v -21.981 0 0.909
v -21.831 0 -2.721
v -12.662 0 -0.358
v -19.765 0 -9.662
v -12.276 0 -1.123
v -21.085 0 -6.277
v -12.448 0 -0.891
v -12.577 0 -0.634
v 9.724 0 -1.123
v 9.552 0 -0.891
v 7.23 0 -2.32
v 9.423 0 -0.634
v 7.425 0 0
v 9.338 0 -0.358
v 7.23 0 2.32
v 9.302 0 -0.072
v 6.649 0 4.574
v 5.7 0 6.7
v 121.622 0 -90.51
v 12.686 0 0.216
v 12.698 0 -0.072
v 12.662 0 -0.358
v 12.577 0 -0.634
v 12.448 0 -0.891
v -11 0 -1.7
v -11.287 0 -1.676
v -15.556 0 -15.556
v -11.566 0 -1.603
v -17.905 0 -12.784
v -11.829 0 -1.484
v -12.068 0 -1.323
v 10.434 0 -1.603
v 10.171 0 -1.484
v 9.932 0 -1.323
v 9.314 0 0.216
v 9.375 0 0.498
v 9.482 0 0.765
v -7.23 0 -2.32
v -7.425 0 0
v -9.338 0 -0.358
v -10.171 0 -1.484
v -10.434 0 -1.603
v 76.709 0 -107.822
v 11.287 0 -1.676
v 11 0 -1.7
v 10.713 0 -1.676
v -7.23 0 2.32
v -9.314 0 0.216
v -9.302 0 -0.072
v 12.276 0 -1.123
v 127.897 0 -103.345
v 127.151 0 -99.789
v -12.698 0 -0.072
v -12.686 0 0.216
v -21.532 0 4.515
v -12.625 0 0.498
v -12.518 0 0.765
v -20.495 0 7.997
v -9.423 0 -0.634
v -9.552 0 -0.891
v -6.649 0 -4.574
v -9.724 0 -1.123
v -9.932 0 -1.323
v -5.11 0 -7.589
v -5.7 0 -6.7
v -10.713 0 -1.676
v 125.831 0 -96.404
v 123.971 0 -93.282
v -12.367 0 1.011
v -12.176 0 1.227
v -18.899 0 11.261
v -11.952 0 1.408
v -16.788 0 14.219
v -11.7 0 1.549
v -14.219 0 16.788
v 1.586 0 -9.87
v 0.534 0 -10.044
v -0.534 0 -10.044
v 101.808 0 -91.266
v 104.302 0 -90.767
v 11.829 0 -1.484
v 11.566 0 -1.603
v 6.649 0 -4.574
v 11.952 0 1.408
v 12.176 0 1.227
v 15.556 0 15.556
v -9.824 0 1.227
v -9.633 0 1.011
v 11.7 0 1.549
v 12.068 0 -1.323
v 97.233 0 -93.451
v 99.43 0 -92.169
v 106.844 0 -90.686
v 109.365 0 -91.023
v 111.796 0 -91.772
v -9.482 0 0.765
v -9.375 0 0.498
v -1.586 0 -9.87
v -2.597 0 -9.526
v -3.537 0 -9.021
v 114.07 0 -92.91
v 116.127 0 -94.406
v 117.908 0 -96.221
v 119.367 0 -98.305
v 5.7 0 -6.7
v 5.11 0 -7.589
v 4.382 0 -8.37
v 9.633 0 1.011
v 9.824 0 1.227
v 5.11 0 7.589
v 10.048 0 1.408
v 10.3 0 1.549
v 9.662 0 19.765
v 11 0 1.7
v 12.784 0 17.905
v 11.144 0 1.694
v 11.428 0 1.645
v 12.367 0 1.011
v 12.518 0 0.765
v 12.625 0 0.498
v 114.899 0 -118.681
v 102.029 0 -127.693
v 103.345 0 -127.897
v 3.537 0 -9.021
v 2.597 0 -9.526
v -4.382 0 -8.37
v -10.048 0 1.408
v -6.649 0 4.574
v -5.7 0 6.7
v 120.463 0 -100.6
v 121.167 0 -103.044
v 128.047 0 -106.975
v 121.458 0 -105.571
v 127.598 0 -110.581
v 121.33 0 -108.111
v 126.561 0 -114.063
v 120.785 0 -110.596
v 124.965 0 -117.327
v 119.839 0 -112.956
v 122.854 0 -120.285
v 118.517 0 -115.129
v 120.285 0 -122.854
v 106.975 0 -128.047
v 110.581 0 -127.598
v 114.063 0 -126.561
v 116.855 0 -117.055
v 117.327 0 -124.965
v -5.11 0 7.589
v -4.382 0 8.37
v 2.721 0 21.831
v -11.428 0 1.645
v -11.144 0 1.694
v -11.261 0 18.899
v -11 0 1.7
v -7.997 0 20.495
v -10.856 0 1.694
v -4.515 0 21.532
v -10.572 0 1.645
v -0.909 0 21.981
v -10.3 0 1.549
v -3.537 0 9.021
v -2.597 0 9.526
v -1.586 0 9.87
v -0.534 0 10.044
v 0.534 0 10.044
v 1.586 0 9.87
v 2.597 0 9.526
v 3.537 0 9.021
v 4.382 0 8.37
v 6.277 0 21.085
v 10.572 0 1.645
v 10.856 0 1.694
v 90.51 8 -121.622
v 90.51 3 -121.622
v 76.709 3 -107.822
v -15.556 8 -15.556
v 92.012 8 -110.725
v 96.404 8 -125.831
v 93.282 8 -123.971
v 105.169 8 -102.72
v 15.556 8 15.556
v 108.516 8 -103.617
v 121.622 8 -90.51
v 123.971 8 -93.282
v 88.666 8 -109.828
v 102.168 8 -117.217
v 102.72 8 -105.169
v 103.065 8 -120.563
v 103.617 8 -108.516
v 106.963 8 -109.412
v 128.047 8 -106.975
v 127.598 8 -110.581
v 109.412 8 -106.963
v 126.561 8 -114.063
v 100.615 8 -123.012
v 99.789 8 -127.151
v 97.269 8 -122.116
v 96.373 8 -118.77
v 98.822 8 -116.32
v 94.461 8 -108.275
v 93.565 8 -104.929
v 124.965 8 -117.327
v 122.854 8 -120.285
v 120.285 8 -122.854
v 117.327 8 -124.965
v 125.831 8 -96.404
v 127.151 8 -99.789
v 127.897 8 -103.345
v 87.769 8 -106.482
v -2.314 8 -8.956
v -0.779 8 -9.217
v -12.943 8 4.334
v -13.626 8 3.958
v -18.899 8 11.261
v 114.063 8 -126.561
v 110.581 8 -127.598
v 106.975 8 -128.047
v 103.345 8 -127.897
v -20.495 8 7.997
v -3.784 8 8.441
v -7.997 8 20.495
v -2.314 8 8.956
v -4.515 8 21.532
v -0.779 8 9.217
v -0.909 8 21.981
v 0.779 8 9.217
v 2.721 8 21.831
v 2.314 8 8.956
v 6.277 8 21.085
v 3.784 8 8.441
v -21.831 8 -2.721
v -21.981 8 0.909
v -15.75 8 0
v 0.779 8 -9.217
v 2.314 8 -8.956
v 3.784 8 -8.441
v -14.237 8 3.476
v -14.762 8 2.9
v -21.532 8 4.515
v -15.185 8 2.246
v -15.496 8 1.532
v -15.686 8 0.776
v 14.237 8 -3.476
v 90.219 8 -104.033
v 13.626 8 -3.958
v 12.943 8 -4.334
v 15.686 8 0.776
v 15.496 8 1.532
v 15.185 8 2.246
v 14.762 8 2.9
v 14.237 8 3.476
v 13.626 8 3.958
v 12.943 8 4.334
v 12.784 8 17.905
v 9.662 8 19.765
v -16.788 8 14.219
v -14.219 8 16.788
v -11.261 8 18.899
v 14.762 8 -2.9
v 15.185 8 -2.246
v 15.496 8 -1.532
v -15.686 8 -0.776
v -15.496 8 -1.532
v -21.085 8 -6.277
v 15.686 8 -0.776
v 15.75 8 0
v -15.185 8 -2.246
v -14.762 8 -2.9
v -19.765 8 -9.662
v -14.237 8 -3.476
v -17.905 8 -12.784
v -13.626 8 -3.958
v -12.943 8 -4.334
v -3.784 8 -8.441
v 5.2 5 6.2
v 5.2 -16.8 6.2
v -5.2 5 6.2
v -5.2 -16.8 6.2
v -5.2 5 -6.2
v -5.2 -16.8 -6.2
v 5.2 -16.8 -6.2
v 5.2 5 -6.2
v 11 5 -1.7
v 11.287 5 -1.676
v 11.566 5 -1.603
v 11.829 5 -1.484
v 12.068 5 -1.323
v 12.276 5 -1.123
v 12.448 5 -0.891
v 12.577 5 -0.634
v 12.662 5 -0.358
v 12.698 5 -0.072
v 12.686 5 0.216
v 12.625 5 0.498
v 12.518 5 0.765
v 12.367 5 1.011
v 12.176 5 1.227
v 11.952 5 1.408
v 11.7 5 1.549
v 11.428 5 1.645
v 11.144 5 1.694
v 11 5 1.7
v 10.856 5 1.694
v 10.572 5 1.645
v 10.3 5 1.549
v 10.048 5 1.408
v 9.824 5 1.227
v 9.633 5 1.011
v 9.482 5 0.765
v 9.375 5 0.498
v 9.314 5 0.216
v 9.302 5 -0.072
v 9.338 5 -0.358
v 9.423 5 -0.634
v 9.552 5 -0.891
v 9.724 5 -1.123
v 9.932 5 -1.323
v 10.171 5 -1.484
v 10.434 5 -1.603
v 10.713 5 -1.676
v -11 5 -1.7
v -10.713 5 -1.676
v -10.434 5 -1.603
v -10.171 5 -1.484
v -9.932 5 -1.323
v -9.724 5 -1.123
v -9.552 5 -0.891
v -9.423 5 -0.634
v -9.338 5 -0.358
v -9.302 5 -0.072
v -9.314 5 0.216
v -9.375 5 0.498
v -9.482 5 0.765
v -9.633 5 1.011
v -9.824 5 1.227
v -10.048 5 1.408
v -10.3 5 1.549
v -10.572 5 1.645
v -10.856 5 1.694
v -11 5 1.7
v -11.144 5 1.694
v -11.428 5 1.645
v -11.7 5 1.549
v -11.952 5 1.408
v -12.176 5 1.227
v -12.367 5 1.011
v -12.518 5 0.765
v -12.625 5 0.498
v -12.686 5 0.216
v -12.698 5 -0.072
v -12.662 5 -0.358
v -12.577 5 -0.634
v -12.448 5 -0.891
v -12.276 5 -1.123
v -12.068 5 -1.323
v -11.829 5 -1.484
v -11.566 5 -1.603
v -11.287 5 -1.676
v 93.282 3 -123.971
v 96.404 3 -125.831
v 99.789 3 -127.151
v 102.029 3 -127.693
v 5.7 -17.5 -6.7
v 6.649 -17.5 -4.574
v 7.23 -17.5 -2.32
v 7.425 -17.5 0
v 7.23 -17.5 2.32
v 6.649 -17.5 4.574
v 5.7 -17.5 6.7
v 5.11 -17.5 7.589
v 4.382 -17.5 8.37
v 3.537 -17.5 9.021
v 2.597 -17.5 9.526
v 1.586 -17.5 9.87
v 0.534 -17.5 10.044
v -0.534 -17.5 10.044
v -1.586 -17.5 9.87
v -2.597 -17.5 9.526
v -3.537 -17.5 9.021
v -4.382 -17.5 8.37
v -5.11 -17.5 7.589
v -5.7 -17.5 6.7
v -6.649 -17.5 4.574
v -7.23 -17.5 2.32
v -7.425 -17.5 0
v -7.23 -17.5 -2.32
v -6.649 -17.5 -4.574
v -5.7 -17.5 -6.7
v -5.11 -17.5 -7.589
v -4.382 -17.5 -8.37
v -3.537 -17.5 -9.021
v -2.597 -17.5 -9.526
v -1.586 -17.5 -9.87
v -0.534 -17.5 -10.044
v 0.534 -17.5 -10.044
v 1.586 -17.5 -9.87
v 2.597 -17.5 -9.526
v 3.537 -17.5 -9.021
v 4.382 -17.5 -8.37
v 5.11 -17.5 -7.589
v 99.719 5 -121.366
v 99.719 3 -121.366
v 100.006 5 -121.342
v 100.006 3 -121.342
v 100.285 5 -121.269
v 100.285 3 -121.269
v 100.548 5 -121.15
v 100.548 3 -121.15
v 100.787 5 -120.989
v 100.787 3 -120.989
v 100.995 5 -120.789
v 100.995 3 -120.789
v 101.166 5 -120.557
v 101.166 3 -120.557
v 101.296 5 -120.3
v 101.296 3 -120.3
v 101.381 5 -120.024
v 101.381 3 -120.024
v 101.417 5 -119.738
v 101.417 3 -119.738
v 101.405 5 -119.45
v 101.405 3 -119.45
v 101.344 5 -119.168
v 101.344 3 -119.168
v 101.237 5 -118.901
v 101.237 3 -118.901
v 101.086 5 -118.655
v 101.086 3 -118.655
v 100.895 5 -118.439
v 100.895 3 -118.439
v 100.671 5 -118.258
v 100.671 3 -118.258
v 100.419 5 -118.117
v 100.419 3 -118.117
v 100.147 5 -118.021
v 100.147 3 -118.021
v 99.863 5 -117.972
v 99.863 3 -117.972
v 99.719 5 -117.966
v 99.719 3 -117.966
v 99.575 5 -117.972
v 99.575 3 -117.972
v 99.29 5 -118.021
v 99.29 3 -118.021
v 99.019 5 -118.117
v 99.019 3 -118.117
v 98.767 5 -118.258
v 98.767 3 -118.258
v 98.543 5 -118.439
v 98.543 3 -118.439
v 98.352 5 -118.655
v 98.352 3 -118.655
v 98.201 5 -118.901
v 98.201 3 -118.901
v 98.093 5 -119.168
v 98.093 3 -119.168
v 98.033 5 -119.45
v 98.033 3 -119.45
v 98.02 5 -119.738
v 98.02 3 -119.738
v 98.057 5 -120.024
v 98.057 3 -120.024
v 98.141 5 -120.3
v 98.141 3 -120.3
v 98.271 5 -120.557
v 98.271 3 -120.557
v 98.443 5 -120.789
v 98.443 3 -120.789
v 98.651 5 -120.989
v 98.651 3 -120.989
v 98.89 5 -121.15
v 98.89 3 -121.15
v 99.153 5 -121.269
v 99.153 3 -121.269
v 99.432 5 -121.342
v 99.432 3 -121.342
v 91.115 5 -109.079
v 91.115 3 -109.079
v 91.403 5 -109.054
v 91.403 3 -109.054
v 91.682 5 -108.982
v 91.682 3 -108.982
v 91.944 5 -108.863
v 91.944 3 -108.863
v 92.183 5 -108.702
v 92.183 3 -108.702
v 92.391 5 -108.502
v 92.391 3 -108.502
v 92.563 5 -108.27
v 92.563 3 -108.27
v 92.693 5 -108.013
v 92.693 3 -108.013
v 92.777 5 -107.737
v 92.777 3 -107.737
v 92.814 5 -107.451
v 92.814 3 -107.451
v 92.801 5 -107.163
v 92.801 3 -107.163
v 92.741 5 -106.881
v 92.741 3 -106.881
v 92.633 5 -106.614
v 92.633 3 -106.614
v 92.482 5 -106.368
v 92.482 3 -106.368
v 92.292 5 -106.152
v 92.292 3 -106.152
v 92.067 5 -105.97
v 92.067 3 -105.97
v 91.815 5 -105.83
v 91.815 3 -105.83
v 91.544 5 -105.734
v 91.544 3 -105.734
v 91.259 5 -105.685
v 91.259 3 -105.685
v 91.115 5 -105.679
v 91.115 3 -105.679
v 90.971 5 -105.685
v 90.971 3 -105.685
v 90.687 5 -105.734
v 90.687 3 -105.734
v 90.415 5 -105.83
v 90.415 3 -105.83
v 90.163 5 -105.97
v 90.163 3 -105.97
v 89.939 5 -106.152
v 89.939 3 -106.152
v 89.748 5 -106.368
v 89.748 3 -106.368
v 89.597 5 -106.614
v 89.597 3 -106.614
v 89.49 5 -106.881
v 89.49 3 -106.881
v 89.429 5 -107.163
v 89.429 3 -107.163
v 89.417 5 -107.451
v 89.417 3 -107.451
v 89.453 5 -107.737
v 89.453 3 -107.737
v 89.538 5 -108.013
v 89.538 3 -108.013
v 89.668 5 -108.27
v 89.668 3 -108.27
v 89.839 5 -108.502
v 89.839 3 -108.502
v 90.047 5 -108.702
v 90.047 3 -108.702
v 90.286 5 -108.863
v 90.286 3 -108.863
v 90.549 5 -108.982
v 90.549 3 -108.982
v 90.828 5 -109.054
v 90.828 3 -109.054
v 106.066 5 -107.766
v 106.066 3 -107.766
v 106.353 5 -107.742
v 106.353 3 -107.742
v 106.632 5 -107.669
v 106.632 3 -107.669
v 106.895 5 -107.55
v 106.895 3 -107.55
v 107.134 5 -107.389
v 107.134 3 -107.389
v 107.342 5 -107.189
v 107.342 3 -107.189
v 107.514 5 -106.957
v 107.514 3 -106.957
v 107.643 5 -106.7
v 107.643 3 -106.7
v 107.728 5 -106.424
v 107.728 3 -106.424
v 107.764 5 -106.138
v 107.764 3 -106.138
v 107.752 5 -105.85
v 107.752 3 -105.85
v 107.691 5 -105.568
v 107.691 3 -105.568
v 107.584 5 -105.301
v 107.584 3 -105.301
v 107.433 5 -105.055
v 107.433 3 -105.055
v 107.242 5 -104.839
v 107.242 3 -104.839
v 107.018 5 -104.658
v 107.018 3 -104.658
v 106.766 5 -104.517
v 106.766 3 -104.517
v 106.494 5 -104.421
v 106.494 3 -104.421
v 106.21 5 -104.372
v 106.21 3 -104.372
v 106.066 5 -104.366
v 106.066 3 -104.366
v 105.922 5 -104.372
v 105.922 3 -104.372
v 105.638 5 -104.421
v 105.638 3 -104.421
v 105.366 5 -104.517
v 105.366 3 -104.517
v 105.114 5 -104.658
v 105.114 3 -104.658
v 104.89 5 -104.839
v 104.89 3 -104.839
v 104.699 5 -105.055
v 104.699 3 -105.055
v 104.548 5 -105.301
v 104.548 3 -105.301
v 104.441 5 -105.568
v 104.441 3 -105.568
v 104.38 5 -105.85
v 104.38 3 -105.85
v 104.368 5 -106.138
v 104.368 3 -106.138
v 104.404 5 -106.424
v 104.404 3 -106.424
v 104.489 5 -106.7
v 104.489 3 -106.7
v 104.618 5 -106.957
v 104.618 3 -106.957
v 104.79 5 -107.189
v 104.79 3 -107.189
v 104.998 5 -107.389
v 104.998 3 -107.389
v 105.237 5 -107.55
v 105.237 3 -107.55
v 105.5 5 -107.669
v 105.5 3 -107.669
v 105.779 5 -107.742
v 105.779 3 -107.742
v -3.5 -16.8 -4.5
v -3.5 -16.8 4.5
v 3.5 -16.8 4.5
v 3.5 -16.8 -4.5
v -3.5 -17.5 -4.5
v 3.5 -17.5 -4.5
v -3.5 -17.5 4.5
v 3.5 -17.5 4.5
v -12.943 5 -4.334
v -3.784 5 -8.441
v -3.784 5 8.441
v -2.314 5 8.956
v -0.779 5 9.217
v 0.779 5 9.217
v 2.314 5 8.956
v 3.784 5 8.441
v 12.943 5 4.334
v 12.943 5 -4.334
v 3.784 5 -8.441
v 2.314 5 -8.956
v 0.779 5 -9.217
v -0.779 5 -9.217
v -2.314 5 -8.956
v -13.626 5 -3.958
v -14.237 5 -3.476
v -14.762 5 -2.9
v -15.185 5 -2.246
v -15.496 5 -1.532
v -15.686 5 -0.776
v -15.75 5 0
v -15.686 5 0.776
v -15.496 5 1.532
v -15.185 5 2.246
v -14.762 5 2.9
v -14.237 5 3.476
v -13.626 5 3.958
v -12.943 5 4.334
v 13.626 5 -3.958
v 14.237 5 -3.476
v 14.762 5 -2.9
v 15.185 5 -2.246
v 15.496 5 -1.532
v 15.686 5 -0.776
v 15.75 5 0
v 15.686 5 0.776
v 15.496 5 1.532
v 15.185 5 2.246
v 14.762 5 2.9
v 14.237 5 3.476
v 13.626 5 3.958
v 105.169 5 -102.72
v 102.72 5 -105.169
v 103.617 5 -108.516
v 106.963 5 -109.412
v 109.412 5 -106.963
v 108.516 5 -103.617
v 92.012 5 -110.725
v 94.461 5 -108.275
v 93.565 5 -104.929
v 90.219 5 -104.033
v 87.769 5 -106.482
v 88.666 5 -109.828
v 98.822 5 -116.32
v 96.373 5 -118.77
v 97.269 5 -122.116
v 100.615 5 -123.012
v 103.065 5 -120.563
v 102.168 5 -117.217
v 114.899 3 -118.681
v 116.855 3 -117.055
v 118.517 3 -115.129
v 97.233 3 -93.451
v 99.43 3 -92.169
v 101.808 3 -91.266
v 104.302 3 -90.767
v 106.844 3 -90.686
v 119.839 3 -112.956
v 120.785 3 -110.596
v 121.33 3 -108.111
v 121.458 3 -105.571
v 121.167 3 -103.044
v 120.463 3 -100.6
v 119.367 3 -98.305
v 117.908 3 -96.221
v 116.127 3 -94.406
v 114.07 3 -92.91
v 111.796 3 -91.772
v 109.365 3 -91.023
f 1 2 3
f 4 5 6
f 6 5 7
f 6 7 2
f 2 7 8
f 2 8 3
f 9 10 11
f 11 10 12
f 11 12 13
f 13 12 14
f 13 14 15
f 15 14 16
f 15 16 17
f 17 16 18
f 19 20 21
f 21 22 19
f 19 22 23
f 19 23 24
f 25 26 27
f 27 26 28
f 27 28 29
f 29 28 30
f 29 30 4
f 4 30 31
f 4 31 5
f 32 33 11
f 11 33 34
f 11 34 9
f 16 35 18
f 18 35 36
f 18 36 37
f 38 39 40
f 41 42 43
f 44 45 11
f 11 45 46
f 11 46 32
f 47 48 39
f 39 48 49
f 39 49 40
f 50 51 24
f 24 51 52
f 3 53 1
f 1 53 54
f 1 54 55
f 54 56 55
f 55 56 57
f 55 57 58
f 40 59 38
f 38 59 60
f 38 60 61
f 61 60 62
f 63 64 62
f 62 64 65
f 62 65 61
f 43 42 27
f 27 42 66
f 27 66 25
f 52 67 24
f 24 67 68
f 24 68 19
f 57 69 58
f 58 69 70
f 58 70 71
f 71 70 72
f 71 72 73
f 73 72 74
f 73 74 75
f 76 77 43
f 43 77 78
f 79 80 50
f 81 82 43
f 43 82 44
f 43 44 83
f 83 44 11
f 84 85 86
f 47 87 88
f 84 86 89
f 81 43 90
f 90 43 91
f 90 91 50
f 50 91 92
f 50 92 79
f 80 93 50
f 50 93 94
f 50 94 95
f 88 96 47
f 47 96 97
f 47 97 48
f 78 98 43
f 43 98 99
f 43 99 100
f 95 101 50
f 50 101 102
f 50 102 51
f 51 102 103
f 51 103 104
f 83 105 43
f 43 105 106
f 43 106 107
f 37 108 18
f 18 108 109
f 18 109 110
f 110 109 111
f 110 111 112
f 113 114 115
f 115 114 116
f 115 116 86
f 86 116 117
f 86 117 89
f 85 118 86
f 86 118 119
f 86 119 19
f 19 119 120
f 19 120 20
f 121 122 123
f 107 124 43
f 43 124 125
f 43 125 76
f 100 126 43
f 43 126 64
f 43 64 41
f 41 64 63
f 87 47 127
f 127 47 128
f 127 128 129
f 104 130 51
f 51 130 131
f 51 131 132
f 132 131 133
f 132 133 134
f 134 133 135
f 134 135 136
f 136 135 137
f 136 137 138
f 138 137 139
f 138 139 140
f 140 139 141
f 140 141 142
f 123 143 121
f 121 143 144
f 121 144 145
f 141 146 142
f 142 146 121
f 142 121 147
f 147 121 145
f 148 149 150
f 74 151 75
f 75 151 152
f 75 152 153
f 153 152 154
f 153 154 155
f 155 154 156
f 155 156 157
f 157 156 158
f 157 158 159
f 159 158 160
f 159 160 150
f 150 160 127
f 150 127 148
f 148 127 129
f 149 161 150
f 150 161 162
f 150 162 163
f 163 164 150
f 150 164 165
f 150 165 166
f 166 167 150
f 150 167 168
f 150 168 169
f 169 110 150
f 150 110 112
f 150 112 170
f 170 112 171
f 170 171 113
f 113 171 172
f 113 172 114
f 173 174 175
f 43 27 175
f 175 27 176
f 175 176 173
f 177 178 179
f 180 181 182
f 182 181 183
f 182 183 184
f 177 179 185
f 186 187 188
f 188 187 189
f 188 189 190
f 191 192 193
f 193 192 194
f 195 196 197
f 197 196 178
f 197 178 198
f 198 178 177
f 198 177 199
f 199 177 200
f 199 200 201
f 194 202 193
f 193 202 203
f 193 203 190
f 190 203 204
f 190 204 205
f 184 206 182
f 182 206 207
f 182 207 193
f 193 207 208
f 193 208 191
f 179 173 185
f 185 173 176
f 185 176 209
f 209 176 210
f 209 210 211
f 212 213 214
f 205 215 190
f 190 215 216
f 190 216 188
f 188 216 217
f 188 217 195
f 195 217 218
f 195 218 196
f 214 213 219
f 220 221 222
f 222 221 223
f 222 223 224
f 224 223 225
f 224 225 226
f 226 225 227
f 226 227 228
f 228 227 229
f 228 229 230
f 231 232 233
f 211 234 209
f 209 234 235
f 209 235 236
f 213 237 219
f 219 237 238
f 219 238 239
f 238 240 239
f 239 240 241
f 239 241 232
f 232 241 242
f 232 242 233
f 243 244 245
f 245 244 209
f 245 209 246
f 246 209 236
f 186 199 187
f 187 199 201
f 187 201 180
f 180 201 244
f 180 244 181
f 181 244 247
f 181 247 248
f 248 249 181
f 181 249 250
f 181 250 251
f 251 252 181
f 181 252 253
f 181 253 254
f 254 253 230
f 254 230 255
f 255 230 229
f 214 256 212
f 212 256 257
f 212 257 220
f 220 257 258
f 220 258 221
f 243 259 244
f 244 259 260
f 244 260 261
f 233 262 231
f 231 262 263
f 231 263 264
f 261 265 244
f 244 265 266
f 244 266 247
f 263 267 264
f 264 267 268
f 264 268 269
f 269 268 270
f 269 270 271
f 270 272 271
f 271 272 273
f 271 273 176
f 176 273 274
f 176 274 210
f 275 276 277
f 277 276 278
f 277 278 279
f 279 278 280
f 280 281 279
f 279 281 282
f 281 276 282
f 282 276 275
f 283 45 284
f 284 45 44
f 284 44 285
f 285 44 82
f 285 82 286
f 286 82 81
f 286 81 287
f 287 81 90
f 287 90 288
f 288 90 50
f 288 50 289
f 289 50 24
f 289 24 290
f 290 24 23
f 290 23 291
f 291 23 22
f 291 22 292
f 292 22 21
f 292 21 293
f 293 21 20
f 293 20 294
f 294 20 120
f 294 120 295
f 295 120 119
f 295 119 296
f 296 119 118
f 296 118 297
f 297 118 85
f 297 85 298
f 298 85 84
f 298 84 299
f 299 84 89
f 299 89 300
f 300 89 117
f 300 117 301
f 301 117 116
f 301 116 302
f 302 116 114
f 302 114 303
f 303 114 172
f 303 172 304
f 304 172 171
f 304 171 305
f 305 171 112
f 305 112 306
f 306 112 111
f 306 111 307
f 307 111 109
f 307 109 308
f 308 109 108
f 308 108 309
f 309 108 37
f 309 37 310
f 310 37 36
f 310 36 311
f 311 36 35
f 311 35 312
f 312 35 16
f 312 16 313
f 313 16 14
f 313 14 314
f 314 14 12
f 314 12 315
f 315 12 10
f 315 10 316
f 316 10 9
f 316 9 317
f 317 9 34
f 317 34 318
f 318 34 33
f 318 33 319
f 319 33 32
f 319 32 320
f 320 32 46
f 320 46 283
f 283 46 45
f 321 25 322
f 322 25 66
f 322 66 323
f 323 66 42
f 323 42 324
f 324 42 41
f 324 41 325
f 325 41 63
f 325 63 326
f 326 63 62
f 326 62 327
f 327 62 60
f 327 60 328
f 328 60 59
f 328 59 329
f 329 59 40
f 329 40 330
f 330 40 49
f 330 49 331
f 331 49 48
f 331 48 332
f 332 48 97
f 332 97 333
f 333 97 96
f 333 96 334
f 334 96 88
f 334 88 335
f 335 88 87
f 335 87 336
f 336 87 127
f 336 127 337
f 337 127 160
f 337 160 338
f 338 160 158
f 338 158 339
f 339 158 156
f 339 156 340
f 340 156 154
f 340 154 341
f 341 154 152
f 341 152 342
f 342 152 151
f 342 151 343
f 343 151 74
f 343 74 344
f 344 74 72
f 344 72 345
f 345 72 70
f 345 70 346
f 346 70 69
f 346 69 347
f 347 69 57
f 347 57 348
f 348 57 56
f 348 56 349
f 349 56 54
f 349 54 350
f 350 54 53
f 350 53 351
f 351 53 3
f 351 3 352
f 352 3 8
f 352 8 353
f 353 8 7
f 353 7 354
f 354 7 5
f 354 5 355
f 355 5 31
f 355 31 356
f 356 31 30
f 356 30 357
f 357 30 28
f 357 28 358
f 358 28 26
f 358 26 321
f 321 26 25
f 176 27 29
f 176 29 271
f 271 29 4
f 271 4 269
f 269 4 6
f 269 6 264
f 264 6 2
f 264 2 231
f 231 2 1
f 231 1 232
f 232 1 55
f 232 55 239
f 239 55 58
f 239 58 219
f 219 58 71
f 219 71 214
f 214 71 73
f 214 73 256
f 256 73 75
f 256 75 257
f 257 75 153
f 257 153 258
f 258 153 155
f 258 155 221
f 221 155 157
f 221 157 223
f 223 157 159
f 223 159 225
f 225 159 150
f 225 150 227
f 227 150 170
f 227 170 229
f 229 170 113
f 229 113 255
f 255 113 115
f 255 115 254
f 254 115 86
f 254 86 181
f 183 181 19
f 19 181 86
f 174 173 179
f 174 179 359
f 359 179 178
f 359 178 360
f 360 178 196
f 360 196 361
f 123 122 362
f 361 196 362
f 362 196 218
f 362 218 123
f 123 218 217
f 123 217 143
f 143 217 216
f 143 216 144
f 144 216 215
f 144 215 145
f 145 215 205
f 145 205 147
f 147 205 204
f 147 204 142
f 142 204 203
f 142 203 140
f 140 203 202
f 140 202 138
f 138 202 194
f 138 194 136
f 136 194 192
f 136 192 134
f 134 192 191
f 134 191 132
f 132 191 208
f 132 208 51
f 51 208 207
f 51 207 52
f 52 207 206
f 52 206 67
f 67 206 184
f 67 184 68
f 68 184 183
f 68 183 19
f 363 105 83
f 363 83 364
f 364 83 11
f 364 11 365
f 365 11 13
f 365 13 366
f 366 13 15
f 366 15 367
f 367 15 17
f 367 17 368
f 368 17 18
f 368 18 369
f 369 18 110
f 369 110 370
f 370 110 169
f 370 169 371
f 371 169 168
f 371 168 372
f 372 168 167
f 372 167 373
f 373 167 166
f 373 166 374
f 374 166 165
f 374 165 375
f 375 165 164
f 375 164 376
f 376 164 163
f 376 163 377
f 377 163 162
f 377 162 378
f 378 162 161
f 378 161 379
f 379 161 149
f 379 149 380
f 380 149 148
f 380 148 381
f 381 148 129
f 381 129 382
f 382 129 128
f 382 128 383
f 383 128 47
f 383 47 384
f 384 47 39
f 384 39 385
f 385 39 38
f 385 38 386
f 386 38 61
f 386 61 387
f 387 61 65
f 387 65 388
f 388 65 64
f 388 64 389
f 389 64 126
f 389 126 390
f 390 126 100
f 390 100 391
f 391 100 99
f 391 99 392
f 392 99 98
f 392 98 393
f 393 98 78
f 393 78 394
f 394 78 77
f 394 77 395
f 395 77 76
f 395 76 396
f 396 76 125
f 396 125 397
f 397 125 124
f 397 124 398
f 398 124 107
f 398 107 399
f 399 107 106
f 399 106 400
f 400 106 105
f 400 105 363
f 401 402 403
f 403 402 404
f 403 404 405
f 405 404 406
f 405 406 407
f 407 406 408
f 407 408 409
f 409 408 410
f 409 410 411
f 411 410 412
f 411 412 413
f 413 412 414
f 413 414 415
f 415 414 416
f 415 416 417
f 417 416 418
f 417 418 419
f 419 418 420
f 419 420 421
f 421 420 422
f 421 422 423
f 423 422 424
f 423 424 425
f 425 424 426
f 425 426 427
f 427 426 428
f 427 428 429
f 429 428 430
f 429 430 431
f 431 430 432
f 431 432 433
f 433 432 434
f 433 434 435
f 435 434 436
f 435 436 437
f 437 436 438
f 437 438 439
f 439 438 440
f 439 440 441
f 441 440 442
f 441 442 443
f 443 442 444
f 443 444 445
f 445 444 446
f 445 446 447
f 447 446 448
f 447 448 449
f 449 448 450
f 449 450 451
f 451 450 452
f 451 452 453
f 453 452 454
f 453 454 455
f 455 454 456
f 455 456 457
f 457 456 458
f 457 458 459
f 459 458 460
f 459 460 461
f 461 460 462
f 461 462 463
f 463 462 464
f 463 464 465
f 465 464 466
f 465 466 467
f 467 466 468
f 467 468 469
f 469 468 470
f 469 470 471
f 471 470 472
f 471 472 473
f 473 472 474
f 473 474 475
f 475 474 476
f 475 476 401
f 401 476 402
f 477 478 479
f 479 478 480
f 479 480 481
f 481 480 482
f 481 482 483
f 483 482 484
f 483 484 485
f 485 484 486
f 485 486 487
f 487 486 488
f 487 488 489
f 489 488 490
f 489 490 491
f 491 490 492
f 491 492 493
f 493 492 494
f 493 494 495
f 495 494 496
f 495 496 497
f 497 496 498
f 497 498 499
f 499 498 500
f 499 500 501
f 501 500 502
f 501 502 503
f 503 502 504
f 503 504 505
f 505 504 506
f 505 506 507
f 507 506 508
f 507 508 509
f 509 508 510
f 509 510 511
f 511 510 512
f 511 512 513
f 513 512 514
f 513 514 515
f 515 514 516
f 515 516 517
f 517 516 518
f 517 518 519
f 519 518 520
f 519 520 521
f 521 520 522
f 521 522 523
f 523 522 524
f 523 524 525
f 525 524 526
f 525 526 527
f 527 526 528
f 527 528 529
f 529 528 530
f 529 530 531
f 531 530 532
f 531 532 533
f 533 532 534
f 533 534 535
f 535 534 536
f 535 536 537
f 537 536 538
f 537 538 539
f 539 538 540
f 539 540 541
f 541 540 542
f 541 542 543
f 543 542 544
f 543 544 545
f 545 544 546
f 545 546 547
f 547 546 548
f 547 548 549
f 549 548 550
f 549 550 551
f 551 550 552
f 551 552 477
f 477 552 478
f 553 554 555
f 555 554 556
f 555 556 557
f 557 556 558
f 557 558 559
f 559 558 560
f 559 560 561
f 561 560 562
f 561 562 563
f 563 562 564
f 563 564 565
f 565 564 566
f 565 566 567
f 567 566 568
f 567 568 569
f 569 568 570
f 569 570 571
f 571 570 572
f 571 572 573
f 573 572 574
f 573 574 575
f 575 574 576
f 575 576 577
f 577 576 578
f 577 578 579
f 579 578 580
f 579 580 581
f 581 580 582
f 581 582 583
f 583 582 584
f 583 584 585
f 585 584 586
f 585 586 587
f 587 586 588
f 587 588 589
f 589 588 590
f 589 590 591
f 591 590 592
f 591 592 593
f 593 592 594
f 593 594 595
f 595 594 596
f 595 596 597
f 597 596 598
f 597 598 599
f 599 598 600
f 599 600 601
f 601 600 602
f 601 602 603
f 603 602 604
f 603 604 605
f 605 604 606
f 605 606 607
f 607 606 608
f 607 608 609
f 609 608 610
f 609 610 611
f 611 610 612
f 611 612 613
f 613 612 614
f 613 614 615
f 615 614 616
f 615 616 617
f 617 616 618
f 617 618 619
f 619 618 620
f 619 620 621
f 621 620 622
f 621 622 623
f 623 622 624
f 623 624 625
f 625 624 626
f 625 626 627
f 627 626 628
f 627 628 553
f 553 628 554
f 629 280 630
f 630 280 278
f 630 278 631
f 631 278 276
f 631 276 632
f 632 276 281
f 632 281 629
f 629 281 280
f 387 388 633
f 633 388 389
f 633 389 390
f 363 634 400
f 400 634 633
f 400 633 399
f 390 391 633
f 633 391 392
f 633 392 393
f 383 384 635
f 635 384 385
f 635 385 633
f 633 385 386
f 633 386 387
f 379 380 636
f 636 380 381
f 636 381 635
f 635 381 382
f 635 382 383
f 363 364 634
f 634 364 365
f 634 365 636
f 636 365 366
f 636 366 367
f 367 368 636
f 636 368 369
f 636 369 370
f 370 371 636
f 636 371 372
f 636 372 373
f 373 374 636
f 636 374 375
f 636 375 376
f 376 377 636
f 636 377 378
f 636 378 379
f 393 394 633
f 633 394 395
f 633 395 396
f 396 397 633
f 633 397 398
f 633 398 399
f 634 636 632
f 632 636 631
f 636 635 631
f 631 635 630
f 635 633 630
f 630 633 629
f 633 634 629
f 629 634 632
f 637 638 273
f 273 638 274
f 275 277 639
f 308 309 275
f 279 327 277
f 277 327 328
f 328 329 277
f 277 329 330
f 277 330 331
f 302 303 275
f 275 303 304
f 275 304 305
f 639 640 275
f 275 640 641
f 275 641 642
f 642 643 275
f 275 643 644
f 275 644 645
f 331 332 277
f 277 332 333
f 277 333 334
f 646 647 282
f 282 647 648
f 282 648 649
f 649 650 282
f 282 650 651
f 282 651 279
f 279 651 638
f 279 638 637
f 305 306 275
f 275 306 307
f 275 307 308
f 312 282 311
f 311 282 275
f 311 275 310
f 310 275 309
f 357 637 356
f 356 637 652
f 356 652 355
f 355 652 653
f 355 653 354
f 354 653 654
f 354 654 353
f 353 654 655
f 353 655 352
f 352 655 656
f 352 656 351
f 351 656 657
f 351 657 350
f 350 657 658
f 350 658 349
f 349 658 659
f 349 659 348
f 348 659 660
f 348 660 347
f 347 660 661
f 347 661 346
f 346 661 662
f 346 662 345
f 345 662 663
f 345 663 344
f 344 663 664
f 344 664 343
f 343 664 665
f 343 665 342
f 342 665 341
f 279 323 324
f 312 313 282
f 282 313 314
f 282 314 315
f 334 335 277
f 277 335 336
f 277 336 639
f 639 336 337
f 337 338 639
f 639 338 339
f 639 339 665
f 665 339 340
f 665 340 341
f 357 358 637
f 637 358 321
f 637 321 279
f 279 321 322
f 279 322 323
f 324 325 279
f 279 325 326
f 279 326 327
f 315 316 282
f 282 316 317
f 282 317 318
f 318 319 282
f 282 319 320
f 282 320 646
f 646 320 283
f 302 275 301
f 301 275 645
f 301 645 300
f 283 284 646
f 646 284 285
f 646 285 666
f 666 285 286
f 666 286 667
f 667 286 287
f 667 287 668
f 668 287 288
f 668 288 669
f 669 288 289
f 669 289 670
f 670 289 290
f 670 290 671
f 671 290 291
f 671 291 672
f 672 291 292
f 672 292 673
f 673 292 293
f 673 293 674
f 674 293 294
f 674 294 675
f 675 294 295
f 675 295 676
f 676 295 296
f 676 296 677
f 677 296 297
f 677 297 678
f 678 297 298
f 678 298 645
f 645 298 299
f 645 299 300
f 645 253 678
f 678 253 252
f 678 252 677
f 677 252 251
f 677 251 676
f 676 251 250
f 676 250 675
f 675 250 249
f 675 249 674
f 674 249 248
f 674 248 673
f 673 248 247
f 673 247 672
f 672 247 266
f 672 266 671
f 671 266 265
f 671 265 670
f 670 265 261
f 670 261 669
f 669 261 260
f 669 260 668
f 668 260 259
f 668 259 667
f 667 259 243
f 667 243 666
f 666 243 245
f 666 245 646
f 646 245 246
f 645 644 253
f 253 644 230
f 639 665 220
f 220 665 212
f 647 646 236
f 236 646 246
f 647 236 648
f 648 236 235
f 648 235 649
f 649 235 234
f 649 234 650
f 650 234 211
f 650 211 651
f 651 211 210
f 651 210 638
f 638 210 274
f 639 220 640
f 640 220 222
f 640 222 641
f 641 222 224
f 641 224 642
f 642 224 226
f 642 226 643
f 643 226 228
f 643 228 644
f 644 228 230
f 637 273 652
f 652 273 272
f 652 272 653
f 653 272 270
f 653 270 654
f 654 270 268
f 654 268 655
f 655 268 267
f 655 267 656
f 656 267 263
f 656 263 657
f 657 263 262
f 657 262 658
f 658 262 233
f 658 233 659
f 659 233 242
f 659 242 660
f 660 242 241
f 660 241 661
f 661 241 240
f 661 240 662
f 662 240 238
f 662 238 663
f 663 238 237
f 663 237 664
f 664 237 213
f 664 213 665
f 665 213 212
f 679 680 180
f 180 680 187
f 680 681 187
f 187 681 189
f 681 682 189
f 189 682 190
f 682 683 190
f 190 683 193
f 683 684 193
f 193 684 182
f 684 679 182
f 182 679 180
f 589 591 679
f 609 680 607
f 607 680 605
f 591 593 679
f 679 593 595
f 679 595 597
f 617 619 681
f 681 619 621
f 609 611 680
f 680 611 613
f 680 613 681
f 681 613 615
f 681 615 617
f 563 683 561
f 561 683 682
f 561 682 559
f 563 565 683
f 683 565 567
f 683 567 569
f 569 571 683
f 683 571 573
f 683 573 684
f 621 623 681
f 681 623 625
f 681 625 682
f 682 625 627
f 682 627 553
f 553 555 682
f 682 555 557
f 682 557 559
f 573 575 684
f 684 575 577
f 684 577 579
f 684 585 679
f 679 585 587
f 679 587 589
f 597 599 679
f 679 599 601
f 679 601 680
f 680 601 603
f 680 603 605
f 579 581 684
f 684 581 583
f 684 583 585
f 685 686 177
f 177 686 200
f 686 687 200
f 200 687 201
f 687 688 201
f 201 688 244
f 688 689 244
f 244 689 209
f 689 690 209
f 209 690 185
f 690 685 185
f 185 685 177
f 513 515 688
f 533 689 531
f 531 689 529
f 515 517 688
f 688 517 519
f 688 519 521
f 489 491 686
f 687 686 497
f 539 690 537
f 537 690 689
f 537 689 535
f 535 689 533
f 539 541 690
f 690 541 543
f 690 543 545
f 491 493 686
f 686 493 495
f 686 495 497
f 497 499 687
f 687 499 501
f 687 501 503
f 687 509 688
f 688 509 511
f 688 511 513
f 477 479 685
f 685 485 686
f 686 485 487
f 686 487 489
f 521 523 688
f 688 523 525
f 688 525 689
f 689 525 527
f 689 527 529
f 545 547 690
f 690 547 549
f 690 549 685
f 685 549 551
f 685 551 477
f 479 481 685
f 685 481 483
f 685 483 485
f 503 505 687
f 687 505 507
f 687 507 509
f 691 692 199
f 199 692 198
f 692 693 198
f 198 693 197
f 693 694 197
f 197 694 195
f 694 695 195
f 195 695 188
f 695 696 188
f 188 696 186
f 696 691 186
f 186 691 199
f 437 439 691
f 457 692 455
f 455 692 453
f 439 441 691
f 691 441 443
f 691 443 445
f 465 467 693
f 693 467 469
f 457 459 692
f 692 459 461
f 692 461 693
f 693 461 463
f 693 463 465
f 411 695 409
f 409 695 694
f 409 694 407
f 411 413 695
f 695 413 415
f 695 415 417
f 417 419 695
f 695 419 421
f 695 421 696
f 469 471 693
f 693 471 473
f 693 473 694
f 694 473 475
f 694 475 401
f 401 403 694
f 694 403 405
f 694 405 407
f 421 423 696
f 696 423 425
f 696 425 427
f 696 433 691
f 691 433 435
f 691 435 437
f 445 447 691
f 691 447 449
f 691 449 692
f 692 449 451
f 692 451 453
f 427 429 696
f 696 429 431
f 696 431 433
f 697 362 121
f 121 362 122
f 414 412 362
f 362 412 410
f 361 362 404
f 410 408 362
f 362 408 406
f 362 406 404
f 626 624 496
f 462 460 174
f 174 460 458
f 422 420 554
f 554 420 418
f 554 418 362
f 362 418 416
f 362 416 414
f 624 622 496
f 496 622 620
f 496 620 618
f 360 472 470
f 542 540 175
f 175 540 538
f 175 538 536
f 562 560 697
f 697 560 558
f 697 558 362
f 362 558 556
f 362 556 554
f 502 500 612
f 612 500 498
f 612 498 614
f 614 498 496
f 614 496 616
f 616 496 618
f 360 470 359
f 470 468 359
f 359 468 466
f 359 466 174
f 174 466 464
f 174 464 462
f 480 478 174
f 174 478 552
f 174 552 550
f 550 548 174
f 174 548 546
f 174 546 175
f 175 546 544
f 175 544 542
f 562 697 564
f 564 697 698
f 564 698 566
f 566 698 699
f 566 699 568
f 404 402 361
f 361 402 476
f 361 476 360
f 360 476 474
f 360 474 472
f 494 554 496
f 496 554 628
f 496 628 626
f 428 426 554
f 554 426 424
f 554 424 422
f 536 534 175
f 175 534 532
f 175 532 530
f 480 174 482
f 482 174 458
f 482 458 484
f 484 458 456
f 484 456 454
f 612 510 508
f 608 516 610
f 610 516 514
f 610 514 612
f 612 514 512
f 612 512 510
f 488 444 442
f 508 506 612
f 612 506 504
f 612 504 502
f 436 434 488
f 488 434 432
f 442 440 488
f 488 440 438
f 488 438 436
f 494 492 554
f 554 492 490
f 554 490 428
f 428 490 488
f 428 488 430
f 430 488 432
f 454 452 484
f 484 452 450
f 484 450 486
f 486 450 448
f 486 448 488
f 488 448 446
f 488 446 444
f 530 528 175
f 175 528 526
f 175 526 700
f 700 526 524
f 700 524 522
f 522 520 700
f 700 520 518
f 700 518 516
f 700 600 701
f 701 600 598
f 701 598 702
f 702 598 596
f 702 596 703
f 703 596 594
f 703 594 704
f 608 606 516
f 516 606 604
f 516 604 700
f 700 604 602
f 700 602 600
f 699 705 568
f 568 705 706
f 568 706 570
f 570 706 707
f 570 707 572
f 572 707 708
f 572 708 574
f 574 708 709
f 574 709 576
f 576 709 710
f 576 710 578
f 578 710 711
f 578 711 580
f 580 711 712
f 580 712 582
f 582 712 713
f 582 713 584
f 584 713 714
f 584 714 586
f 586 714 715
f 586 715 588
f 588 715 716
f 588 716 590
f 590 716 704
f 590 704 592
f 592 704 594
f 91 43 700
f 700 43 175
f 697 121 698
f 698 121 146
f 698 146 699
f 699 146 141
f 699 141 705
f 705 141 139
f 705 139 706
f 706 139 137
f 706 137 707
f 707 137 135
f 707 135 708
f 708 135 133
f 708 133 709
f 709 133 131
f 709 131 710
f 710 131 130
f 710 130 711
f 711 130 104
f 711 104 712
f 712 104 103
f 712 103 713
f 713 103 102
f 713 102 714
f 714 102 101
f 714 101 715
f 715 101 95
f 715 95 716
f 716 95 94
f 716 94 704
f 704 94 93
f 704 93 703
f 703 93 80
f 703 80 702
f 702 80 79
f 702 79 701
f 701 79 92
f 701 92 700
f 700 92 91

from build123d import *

# Parameters (mm, degrees)
BOSS_EXTRUDE1_DEPTH     = 8
BOSS_EXTRUDE2_START     = 8
SKETCH1_4_W             = 10.4
SKETCH1_4_H             = 12.4
BOSS_EXTRUDE2_DEPTH     = 24.8
CUT_EXTRUDE3_DEPTH      = 177.890212798
CUT_EXTRUDE3_DEPTH_BACK = 182.890212798
CUT_EXTRUDE3_START      = 5
SKETCH1_6_W             = 10.4
SKETCH1_6_H             = 12.4
SKETCH1_6_R             = 1.7
BOSS_EXTRUDE3_START     = -16.8
SKETCH1_10_W            = 11.4
SKETCH1_10_H            = 13.4
SKETCH1_10_W_2          = 10.4
SKETCH1_10_H_2          = 12.4
SKETCH1_10_W_3          = 7
SKETCH1_10_H_3          = 9
BOSS_EXTRUDE3_DEPTH     = 0.7
SKETCH2_R               = 1.7
SKETCH2_W               = 10.4
SKETCH2_H               = 12.4
CUT_EXTRUDE7_DEPTH      = 3
CUT_EXTRUDE5_START      = 8
SKETCH1_8_R             = 1.7
CUT_EXTRUDE5_DEPTH      = 3
CUT_EXTRUDE6_DEPTH      = 3


with BuildPart() as part:
    # Sketch1 → Boss-Extrude1 (new body)
    with BuildSketch(Plane(origin=(0, 0, 0), x_dir=(1, 0, 0), z_dir=(0, 1, 0))):
        with BuildLine():
            Line((-15.556349186, 15.556349186), (90.509667992, 121.622366364))
            ThreePointArc((90.509667992, 121.622366364), (121.622366364, 121.622366364), (121.622366364, 90.509667992))
            Line((121.622366364, 90.509667992), (15.556349186, -15.556349186))
            ThreePointArc((15.556349186, -15.556349186), (-15.556349186, -15.556349186), (-15.556349186, 15.556349186))
        make_face()
    extrude(amount=BOSS_EXTRUDE1_DEPTH)

    # Sketch1<4> → Boss-Extrude2 (add)
    with BuildSketch(Plane(origin=(0, 0, 0), x_dir=(1, 0, 0), z_dir=(0, 1, 0)).offset(BOSS_EXTRUDE2_START)):
        with BuildLine():
            ThreePointArc((-5.7, 6.7), (0, 10.065795515), (5.7, 6.7))
            ThreePointArc((5.7, 6.7), (7.425074212, 0), (5.7, -6.7))
            ThreePointArc((5.7, -6.7), (0, -10.065795515), (-5.7, -6.7))
            ThreePointArc((-5.7, -6.7), (-7.425074212, 0), (-5.7, 6.7))
        make_face()
        Rectangle(SKETCH1_4_W, SKETCH1_4_H, mode=Mode.SUBTRACT)
    extrude(amount=-BOSS_EXTRUDE2_DEPTH)

    # Sketch1<6> → Cut-Extrude3 (cut, two sides: drawn at the far end of the back side and taken through both)
    with BuildSketch(Plane(origin=(0, 0, 0), x_dir=(1, 0, 0), z_dir=(0, 1, 0)).offset(CUT_EXTRUDE3_START - CUT_EXTRUDE3_DEPTH_BACK)):
        Rectangle(SKETCH1_6_W, SKETCH1_6_H)
        with Locations(Location((106.066017178, 106.066017178, 0), (0, 0, 270))):
            Circle(SKETCH1_6_R)
        with Locations(Location((99.718863875, 119.666151183, 0), (0, 0, 270))):
            Circle(SKETCH1_6_R)
        with Locations(Location((91.11521733, 107.378870518, 0), (0, 0, 270))):
            Circle(SKETCH1_6_R)
        with Locations(Location((11, 0, 0), (0, 0, 270))):
            Circle(SKETCH1_6_R)
        with Locations(Location((-11, 0, 0), (0, 0, 270))):
            Circle(SKETCH1_6_R)
    extrude(amount=CUT_EXTRUDE3_DEPTH + CUT_EXTRUDE3_DEPTH_BACK, mode=Mode.SUBTRACT)

    # Sketch1<10> → Boss-Extrude3 (add)
    # profile 1 of 6: a face of its own
    with BuildSketch(Plane(origin=(0, 0, 0), x_dir=(1, 0, 0), z_dir=(0, 1, 0)).offset(BOSS_EXTRUDE3_START)):
        Rectangle(SKETCH1_10_W, SKETCH1_10_H)
        Rectangle(SKETCH1_10_W_2, SKETCH1_10_H_2, mode=Mode.SUBTRACT)
    # profile 2 of 6: a face of its own
    with BuildSketch(Plane(origin=(0, 0, 0), x_dir=(1, 0, 0), z_dir=(0, 1, 0)).offset(BOSS_EXTRUDE3_START)):
        Rectangle(SKETCH1_10_W_2, SKETCH1_10_H_2)
        Rectangle(SKETCH1_10_W_3, SKETCH1_10_H_3, mode=Mode.SUBTRACT)
    # profile 3 of 6: a face of its own
    with BuildSketch(Plane(origin=(0, 0, 0), x_dir=(1, 0, 0), z_dir=(0, 1, 0)).offset(BOSS_EXTRUDE3_START)):
        with BuildLine():
            ThreePointArc((-5.7, 6.7), (0, 10.065795515), (5.7, 6.7))
            Line((5.7, 6.7), (-5.7, 6.7))
        make_face()
    # profile 4 of 6: a face of its own
    with BuildSketch(Plane(origin=(0, 0, 0), x_dir=(1, 0, 0), z_dir=(0, 1, 0)).offset(BOSS_EXTRUDE3_START)):
        with BuildLine():
            Line((5.7, 6.7), (5.7, -6.7))
            ThreePointArc((5.7, -6.7), (7.425074212, 0), (5.7, 6.7))
        make_face()
    # profile 5 of 6: a face of its own
    with BuildSketch(Plane(origin=(0, 0, 0), x_dir=(1, 0, 0), z_dir=(0, 1, 0)).offset(BOSS_EXTRUDE3_START)):
        with BuildLine():
            Line((-5.7, -6.7), (5.7, -6.7))
            ThreePointArc((5.7, -6.7), (0, -10.065795515), (-5.7, -6.7))
        make_face()
    # profile 6 of 6: a face of its own
    with BuildSketch(Plane(origin=(0, 0, 0), x_dir=(1, 0, 0), z_dir=(0, 1, 0)).offset(BOSS_EXTRUDE3_START)):
        with BuildLine():
            Line((-5.7, 6.7), (-5.7, -6.7))
            ThreePointArc((-5.7, -6.7), (-7.425074212, 0), (-5.7, 6.7))
        make_face()
    extrude(amount=-BOSS_EXTRUDE3_DEPTH)

    # Sketch2 → Cut-Extrude7 (cut)
    with BuildSketch(Plane(origin=(0, 8, 0), x_dir=(1, 0, 0), z_dir=(0, 1, 0))):
        with BuildLine():
            ThreePointArc((-3.784090909, -8.440566094), (0, -9.25), (3.784090909, -8.440566094))
            Line((3.784090909, -8.440566094), (12.943181818, -4.334344751))
            ThreePointArc((12.943181818, -4.334344751), (15.75, 0), (12.943181818, 4.334344751))
            Line((12.943181818, 4.334344751), (3.784090909, 8.440566094))
            ThreePointArc((3.784090909, 8.440566094), (0, 9.25), (-3.784090909, 8.440566094))
            Line((-3.784090909, 8.440566094), (-12.943181818, 4.334344751))
            ThreePointArc((-12.943181818, 4.334344751), (-15.75, 0), (-12.943181818, -4.334344751))
            Line((-12.943181818, -4.334344751), (-3.784090909, -8.440566094))
        make_face()
        with Locations(Location((-11, 0, 0), (0, 0, 270))):
            Circle(SKETCH2_R, mode=Mode.SUBTRACT)
        Rectangle(SKETCH2_W, SKETCH2_H, mode=Mode.SUBTRACT)
        with Locations(Location((11, 0, 0), (0, 0, 270))):
            Circle(SKETCH2_R, mode=Mode.SUBTRACT)
    extrude(amount=-CUT_EXTRUDE7_DEPTH, mode=Mode.SUBTRACT)

    # Sketch1<8> → Cut-Extrude5 (cut)
    # profile 1 of 3: a face of its own
    with BuildSketch(Plane(origin=(0, 0, 0), x_dir=(1, 0, 0), z_dir=(0, 1, 0)).offset(CUT_EXTRUDE5_START)):
        Polygon((102.168353618, 117.21666144), (103.06492909, 120.562726655), (100.615439347, 123.012216398), (97.269374132, 122.115640925), (96.37279866, 118.769575711), (98.822288403, 116.320085968), align=None)
        with Locations(Location((99.718863875, 119.666151183, 0), (0, 0, 270))):
            Circle(SKETCH1_8_R, mode=Mode.SUBTRACT)
    # profile 2 of 3: a face of its own
    with BuildSketch(Plane(origin=(0, 0, 0), x_dir=(1, 0, 0), z_dir=(0, 1, 0)).offset(CUT_EXTRUDE5_START)):
        Polygon((88.665727587, 109.828360261), (87.769152115, 106.482295046), (90.218641857, 104.032805303), (93.564707072, 104.929380776), (94.461282545, 108.275445991), (92.011792802, 110.724935733), align=None)
        with Locations(Location((91.11521733, 107.378870518, 0), (0, 0, 270))):
            Circle(SKETCH1_8_R, mode=Mode.SUBTRACT)
    # profile 3 of 3: a face of its own
    with BuildSketch(Plane(origin=(0, 0, 0), x_dir=(1, 0, 0), z_dir=(0, 1, 0)).offset(CUT_EXTRUDE5_START)):
        Polygon((108.515506921, 103.616527435), (109.412082393, 106.96259265), (106.96259265, 109.412082393), (103.616527435, 108.515506921), (102.719951963, 105.169441706), (105.169441706, 102.719951963), align=None)
        with Locations(Location((106.066017178, 106.066017178, 0), (0, 0, 270))):
            Circle(SKETCH1_8_R, mode=Mode.SUBTRACT)
    extrude(amount=-CUT_EXTRUDE5_DEPTH, mode=Mode.SUBTRACT)

    # Sketch1<9> → Cut-Extrude6 (cut)
    with BuildSketch(Plane(origin=(0, 0, 0), x_dir=(1, 0, 0), z_dir=(0, 1, 0))):
        with BuildLine():
            Line((97.232940058, 93.451075696), (-9.918409797, 168.479258594))
            ThreePointArc((-9.918409797, 168.479258594), (-13.700274159, 189.927277196), (7.747744443, 193.709141558))
            Line((7.747744443, 193.709141558), (114.899094298, 118.68095866))
            ThreePointArc((114.899094298, 118.68095866), (118.68095866, 97.232940058), (97.232940058, 93.451075696))
        make_face()
    extrude(amount=CUT_EXTRUDE6_DEPTH, mode=Mode.SUBTRACT)


solid = part.part
